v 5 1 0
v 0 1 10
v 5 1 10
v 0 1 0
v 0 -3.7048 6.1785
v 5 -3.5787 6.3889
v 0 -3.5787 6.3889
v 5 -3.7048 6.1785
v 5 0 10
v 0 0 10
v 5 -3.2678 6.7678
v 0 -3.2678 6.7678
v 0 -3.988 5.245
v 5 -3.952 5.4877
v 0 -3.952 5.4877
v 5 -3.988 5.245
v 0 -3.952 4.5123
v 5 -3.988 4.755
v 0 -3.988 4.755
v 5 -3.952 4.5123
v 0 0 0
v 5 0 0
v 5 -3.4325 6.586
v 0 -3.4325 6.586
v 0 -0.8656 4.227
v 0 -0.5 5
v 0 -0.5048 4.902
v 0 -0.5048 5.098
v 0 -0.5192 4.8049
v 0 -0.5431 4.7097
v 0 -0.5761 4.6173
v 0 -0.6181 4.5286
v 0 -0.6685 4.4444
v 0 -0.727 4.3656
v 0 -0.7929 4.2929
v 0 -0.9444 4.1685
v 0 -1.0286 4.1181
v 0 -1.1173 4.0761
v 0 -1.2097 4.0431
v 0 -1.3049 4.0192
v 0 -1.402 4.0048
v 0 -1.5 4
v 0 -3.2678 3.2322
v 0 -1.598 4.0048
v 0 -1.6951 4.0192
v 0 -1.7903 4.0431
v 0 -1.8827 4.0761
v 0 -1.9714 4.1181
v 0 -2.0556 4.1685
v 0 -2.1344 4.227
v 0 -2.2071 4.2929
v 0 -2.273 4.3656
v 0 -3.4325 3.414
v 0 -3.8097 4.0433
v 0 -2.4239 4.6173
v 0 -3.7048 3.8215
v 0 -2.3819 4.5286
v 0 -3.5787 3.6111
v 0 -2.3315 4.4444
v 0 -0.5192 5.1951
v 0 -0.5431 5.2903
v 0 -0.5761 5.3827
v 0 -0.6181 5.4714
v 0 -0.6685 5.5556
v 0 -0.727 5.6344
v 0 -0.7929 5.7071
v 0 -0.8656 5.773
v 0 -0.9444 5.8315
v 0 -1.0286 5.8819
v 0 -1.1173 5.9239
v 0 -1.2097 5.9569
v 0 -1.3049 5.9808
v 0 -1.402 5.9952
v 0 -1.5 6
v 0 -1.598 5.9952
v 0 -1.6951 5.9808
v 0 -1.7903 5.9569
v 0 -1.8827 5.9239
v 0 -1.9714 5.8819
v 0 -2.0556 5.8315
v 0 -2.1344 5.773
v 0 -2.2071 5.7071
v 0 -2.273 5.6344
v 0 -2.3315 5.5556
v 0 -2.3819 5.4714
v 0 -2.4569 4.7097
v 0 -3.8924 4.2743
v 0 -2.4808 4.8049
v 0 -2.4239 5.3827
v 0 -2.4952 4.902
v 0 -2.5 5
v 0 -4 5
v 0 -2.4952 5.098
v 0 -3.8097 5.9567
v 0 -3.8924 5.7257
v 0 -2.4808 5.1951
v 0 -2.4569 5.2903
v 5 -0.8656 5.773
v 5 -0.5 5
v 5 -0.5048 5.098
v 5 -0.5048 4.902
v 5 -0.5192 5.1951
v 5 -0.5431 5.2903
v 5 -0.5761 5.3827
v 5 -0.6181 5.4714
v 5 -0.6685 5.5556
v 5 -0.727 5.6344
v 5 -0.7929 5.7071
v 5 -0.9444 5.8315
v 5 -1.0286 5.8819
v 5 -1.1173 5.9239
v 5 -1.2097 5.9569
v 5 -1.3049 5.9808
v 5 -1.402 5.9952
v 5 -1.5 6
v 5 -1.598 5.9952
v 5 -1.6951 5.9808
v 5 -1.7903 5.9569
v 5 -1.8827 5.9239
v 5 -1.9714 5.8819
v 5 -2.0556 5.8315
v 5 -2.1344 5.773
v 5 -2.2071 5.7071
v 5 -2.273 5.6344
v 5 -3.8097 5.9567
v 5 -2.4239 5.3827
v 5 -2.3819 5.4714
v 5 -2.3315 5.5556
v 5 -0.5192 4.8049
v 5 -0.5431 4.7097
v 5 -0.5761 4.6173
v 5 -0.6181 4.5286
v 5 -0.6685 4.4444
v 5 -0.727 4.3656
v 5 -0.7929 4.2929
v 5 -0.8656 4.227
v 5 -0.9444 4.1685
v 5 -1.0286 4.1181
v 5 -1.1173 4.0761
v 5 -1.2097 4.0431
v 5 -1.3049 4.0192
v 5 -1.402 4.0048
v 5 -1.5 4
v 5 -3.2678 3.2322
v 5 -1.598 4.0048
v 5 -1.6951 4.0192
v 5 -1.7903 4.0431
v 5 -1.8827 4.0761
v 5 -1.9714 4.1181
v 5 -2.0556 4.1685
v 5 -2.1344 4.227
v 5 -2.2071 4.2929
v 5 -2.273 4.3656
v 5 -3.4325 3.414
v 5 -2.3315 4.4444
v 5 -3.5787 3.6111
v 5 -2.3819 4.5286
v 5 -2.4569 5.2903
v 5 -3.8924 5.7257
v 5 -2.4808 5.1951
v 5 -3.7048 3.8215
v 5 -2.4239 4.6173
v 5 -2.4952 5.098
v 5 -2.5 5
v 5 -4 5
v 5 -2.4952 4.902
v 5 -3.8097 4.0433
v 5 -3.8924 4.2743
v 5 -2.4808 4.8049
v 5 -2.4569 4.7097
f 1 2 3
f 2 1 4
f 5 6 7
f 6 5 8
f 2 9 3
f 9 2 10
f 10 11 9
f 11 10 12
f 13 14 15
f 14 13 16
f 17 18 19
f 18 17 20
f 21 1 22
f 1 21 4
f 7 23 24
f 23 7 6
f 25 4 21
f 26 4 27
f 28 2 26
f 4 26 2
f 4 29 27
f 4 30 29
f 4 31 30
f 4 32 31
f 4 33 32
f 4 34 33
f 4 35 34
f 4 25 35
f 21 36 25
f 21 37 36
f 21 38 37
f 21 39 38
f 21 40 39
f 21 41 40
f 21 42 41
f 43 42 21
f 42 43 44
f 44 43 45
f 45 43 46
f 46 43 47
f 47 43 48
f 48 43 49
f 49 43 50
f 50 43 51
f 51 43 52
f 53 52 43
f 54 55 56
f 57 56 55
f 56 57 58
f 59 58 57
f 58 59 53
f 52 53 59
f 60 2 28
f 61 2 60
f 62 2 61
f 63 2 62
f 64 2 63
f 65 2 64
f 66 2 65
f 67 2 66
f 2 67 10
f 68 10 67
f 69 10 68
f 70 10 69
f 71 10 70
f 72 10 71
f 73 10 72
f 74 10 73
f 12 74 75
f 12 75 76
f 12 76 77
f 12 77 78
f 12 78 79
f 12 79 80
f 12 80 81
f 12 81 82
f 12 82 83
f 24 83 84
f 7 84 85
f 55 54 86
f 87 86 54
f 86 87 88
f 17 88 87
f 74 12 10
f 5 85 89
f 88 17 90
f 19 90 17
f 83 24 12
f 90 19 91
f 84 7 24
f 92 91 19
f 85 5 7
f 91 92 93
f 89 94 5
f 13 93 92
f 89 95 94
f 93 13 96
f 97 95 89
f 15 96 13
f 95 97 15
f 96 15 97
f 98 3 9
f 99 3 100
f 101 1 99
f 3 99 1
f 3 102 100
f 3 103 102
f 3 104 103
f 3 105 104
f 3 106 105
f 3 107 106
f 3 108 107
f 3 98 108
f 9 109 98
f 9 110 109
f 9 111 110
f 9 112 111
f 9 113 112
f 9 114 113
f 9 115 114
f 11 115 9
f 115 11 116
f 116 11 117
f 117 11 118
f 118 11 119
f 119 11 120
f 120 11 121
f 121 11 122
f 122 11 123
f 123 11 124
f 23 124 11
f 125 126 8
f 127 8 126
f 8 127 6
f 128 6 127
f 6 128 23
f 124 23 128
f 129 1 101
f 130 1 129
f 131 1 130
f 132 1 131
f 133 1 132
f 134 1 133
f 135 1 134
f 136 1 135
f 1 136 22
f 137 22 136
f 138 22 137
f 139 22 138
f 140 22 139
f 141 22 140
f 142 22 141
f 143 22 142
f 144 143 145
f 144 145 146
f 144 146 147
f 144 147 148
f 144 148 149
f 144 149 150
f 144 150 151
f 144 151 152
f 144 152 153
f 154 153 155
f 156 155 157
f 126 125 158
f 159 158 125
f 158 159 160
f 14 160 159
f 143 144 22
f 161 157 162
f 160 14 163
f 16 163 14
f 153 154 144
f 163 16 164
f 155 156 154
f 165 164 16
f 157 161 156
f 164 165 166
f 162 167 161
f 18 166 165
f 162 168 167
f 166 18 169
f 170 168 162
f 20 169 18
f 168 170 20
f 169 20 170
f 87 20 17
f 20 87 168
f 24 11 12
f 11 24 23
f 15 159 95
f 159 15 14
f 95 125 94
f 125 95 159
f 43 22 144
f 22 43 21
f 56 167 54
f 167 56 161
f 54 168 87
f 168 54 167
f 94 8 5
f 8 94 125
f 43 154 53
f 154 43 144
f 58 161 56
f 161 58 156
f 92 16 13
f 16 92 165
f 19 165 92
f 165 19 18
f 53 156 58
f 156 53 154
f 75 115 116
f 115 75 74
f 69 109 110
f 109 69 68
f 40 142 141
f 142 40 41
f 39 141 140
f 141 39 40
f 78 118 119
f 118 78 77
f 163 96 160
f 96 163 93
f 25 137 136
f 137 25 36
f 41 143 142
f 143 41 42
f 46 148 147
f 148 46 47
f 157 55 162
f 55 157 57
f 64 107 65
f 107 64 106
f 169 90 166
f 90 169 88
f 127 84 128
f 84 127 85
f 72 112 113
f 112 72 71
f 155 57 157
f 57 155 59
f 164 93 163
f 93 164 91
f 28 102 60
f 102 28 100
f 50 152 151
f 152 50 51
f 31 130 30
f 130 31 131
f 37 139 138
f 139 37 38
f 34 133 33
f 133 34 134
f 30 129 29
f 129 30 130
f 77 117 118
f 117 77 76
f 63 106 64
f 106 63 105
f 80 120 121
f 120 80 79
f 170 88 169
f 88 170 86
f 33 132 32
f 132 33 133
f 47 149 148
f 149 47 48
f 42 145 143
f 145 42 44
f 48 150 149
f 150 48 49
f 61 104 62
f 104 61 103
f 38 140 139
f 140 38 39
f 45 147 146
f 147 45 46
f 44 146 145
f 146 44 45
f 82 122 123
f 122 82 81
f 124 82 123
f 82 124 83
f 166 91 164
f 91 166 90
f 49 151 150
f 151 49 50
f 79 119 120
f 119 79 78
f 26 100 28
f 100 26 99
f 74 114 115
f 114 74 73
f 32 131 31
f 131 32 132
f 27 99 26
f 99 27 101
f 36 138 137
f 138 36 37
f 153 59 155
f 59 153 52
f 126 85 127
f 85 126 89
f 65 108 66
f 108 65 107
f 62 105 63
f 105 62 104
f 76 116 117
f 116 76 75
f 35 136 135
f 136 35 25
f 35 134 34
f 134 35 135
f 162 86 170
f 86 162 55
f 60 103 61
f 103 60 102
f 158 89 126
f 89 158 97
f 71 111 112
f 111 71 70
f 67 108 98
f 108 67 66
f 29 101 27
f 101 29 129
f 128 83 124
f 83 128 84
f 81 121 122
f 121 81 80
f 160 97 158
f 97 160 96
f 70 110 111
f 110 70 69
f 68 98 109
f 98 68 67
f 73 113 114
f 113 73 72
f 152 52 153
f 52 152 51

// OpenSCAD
difference(){
hull(){
cube([5,1,10]);

translate([0,-1.5,10/2])
rotate([0,90,0])
cylinder(d=5,h=5,$fn=64);
}
translate([-5,-1.5,10/2])
rotate([0,90,0])
cylinder(d=2,h=15,$fn=64);
}
